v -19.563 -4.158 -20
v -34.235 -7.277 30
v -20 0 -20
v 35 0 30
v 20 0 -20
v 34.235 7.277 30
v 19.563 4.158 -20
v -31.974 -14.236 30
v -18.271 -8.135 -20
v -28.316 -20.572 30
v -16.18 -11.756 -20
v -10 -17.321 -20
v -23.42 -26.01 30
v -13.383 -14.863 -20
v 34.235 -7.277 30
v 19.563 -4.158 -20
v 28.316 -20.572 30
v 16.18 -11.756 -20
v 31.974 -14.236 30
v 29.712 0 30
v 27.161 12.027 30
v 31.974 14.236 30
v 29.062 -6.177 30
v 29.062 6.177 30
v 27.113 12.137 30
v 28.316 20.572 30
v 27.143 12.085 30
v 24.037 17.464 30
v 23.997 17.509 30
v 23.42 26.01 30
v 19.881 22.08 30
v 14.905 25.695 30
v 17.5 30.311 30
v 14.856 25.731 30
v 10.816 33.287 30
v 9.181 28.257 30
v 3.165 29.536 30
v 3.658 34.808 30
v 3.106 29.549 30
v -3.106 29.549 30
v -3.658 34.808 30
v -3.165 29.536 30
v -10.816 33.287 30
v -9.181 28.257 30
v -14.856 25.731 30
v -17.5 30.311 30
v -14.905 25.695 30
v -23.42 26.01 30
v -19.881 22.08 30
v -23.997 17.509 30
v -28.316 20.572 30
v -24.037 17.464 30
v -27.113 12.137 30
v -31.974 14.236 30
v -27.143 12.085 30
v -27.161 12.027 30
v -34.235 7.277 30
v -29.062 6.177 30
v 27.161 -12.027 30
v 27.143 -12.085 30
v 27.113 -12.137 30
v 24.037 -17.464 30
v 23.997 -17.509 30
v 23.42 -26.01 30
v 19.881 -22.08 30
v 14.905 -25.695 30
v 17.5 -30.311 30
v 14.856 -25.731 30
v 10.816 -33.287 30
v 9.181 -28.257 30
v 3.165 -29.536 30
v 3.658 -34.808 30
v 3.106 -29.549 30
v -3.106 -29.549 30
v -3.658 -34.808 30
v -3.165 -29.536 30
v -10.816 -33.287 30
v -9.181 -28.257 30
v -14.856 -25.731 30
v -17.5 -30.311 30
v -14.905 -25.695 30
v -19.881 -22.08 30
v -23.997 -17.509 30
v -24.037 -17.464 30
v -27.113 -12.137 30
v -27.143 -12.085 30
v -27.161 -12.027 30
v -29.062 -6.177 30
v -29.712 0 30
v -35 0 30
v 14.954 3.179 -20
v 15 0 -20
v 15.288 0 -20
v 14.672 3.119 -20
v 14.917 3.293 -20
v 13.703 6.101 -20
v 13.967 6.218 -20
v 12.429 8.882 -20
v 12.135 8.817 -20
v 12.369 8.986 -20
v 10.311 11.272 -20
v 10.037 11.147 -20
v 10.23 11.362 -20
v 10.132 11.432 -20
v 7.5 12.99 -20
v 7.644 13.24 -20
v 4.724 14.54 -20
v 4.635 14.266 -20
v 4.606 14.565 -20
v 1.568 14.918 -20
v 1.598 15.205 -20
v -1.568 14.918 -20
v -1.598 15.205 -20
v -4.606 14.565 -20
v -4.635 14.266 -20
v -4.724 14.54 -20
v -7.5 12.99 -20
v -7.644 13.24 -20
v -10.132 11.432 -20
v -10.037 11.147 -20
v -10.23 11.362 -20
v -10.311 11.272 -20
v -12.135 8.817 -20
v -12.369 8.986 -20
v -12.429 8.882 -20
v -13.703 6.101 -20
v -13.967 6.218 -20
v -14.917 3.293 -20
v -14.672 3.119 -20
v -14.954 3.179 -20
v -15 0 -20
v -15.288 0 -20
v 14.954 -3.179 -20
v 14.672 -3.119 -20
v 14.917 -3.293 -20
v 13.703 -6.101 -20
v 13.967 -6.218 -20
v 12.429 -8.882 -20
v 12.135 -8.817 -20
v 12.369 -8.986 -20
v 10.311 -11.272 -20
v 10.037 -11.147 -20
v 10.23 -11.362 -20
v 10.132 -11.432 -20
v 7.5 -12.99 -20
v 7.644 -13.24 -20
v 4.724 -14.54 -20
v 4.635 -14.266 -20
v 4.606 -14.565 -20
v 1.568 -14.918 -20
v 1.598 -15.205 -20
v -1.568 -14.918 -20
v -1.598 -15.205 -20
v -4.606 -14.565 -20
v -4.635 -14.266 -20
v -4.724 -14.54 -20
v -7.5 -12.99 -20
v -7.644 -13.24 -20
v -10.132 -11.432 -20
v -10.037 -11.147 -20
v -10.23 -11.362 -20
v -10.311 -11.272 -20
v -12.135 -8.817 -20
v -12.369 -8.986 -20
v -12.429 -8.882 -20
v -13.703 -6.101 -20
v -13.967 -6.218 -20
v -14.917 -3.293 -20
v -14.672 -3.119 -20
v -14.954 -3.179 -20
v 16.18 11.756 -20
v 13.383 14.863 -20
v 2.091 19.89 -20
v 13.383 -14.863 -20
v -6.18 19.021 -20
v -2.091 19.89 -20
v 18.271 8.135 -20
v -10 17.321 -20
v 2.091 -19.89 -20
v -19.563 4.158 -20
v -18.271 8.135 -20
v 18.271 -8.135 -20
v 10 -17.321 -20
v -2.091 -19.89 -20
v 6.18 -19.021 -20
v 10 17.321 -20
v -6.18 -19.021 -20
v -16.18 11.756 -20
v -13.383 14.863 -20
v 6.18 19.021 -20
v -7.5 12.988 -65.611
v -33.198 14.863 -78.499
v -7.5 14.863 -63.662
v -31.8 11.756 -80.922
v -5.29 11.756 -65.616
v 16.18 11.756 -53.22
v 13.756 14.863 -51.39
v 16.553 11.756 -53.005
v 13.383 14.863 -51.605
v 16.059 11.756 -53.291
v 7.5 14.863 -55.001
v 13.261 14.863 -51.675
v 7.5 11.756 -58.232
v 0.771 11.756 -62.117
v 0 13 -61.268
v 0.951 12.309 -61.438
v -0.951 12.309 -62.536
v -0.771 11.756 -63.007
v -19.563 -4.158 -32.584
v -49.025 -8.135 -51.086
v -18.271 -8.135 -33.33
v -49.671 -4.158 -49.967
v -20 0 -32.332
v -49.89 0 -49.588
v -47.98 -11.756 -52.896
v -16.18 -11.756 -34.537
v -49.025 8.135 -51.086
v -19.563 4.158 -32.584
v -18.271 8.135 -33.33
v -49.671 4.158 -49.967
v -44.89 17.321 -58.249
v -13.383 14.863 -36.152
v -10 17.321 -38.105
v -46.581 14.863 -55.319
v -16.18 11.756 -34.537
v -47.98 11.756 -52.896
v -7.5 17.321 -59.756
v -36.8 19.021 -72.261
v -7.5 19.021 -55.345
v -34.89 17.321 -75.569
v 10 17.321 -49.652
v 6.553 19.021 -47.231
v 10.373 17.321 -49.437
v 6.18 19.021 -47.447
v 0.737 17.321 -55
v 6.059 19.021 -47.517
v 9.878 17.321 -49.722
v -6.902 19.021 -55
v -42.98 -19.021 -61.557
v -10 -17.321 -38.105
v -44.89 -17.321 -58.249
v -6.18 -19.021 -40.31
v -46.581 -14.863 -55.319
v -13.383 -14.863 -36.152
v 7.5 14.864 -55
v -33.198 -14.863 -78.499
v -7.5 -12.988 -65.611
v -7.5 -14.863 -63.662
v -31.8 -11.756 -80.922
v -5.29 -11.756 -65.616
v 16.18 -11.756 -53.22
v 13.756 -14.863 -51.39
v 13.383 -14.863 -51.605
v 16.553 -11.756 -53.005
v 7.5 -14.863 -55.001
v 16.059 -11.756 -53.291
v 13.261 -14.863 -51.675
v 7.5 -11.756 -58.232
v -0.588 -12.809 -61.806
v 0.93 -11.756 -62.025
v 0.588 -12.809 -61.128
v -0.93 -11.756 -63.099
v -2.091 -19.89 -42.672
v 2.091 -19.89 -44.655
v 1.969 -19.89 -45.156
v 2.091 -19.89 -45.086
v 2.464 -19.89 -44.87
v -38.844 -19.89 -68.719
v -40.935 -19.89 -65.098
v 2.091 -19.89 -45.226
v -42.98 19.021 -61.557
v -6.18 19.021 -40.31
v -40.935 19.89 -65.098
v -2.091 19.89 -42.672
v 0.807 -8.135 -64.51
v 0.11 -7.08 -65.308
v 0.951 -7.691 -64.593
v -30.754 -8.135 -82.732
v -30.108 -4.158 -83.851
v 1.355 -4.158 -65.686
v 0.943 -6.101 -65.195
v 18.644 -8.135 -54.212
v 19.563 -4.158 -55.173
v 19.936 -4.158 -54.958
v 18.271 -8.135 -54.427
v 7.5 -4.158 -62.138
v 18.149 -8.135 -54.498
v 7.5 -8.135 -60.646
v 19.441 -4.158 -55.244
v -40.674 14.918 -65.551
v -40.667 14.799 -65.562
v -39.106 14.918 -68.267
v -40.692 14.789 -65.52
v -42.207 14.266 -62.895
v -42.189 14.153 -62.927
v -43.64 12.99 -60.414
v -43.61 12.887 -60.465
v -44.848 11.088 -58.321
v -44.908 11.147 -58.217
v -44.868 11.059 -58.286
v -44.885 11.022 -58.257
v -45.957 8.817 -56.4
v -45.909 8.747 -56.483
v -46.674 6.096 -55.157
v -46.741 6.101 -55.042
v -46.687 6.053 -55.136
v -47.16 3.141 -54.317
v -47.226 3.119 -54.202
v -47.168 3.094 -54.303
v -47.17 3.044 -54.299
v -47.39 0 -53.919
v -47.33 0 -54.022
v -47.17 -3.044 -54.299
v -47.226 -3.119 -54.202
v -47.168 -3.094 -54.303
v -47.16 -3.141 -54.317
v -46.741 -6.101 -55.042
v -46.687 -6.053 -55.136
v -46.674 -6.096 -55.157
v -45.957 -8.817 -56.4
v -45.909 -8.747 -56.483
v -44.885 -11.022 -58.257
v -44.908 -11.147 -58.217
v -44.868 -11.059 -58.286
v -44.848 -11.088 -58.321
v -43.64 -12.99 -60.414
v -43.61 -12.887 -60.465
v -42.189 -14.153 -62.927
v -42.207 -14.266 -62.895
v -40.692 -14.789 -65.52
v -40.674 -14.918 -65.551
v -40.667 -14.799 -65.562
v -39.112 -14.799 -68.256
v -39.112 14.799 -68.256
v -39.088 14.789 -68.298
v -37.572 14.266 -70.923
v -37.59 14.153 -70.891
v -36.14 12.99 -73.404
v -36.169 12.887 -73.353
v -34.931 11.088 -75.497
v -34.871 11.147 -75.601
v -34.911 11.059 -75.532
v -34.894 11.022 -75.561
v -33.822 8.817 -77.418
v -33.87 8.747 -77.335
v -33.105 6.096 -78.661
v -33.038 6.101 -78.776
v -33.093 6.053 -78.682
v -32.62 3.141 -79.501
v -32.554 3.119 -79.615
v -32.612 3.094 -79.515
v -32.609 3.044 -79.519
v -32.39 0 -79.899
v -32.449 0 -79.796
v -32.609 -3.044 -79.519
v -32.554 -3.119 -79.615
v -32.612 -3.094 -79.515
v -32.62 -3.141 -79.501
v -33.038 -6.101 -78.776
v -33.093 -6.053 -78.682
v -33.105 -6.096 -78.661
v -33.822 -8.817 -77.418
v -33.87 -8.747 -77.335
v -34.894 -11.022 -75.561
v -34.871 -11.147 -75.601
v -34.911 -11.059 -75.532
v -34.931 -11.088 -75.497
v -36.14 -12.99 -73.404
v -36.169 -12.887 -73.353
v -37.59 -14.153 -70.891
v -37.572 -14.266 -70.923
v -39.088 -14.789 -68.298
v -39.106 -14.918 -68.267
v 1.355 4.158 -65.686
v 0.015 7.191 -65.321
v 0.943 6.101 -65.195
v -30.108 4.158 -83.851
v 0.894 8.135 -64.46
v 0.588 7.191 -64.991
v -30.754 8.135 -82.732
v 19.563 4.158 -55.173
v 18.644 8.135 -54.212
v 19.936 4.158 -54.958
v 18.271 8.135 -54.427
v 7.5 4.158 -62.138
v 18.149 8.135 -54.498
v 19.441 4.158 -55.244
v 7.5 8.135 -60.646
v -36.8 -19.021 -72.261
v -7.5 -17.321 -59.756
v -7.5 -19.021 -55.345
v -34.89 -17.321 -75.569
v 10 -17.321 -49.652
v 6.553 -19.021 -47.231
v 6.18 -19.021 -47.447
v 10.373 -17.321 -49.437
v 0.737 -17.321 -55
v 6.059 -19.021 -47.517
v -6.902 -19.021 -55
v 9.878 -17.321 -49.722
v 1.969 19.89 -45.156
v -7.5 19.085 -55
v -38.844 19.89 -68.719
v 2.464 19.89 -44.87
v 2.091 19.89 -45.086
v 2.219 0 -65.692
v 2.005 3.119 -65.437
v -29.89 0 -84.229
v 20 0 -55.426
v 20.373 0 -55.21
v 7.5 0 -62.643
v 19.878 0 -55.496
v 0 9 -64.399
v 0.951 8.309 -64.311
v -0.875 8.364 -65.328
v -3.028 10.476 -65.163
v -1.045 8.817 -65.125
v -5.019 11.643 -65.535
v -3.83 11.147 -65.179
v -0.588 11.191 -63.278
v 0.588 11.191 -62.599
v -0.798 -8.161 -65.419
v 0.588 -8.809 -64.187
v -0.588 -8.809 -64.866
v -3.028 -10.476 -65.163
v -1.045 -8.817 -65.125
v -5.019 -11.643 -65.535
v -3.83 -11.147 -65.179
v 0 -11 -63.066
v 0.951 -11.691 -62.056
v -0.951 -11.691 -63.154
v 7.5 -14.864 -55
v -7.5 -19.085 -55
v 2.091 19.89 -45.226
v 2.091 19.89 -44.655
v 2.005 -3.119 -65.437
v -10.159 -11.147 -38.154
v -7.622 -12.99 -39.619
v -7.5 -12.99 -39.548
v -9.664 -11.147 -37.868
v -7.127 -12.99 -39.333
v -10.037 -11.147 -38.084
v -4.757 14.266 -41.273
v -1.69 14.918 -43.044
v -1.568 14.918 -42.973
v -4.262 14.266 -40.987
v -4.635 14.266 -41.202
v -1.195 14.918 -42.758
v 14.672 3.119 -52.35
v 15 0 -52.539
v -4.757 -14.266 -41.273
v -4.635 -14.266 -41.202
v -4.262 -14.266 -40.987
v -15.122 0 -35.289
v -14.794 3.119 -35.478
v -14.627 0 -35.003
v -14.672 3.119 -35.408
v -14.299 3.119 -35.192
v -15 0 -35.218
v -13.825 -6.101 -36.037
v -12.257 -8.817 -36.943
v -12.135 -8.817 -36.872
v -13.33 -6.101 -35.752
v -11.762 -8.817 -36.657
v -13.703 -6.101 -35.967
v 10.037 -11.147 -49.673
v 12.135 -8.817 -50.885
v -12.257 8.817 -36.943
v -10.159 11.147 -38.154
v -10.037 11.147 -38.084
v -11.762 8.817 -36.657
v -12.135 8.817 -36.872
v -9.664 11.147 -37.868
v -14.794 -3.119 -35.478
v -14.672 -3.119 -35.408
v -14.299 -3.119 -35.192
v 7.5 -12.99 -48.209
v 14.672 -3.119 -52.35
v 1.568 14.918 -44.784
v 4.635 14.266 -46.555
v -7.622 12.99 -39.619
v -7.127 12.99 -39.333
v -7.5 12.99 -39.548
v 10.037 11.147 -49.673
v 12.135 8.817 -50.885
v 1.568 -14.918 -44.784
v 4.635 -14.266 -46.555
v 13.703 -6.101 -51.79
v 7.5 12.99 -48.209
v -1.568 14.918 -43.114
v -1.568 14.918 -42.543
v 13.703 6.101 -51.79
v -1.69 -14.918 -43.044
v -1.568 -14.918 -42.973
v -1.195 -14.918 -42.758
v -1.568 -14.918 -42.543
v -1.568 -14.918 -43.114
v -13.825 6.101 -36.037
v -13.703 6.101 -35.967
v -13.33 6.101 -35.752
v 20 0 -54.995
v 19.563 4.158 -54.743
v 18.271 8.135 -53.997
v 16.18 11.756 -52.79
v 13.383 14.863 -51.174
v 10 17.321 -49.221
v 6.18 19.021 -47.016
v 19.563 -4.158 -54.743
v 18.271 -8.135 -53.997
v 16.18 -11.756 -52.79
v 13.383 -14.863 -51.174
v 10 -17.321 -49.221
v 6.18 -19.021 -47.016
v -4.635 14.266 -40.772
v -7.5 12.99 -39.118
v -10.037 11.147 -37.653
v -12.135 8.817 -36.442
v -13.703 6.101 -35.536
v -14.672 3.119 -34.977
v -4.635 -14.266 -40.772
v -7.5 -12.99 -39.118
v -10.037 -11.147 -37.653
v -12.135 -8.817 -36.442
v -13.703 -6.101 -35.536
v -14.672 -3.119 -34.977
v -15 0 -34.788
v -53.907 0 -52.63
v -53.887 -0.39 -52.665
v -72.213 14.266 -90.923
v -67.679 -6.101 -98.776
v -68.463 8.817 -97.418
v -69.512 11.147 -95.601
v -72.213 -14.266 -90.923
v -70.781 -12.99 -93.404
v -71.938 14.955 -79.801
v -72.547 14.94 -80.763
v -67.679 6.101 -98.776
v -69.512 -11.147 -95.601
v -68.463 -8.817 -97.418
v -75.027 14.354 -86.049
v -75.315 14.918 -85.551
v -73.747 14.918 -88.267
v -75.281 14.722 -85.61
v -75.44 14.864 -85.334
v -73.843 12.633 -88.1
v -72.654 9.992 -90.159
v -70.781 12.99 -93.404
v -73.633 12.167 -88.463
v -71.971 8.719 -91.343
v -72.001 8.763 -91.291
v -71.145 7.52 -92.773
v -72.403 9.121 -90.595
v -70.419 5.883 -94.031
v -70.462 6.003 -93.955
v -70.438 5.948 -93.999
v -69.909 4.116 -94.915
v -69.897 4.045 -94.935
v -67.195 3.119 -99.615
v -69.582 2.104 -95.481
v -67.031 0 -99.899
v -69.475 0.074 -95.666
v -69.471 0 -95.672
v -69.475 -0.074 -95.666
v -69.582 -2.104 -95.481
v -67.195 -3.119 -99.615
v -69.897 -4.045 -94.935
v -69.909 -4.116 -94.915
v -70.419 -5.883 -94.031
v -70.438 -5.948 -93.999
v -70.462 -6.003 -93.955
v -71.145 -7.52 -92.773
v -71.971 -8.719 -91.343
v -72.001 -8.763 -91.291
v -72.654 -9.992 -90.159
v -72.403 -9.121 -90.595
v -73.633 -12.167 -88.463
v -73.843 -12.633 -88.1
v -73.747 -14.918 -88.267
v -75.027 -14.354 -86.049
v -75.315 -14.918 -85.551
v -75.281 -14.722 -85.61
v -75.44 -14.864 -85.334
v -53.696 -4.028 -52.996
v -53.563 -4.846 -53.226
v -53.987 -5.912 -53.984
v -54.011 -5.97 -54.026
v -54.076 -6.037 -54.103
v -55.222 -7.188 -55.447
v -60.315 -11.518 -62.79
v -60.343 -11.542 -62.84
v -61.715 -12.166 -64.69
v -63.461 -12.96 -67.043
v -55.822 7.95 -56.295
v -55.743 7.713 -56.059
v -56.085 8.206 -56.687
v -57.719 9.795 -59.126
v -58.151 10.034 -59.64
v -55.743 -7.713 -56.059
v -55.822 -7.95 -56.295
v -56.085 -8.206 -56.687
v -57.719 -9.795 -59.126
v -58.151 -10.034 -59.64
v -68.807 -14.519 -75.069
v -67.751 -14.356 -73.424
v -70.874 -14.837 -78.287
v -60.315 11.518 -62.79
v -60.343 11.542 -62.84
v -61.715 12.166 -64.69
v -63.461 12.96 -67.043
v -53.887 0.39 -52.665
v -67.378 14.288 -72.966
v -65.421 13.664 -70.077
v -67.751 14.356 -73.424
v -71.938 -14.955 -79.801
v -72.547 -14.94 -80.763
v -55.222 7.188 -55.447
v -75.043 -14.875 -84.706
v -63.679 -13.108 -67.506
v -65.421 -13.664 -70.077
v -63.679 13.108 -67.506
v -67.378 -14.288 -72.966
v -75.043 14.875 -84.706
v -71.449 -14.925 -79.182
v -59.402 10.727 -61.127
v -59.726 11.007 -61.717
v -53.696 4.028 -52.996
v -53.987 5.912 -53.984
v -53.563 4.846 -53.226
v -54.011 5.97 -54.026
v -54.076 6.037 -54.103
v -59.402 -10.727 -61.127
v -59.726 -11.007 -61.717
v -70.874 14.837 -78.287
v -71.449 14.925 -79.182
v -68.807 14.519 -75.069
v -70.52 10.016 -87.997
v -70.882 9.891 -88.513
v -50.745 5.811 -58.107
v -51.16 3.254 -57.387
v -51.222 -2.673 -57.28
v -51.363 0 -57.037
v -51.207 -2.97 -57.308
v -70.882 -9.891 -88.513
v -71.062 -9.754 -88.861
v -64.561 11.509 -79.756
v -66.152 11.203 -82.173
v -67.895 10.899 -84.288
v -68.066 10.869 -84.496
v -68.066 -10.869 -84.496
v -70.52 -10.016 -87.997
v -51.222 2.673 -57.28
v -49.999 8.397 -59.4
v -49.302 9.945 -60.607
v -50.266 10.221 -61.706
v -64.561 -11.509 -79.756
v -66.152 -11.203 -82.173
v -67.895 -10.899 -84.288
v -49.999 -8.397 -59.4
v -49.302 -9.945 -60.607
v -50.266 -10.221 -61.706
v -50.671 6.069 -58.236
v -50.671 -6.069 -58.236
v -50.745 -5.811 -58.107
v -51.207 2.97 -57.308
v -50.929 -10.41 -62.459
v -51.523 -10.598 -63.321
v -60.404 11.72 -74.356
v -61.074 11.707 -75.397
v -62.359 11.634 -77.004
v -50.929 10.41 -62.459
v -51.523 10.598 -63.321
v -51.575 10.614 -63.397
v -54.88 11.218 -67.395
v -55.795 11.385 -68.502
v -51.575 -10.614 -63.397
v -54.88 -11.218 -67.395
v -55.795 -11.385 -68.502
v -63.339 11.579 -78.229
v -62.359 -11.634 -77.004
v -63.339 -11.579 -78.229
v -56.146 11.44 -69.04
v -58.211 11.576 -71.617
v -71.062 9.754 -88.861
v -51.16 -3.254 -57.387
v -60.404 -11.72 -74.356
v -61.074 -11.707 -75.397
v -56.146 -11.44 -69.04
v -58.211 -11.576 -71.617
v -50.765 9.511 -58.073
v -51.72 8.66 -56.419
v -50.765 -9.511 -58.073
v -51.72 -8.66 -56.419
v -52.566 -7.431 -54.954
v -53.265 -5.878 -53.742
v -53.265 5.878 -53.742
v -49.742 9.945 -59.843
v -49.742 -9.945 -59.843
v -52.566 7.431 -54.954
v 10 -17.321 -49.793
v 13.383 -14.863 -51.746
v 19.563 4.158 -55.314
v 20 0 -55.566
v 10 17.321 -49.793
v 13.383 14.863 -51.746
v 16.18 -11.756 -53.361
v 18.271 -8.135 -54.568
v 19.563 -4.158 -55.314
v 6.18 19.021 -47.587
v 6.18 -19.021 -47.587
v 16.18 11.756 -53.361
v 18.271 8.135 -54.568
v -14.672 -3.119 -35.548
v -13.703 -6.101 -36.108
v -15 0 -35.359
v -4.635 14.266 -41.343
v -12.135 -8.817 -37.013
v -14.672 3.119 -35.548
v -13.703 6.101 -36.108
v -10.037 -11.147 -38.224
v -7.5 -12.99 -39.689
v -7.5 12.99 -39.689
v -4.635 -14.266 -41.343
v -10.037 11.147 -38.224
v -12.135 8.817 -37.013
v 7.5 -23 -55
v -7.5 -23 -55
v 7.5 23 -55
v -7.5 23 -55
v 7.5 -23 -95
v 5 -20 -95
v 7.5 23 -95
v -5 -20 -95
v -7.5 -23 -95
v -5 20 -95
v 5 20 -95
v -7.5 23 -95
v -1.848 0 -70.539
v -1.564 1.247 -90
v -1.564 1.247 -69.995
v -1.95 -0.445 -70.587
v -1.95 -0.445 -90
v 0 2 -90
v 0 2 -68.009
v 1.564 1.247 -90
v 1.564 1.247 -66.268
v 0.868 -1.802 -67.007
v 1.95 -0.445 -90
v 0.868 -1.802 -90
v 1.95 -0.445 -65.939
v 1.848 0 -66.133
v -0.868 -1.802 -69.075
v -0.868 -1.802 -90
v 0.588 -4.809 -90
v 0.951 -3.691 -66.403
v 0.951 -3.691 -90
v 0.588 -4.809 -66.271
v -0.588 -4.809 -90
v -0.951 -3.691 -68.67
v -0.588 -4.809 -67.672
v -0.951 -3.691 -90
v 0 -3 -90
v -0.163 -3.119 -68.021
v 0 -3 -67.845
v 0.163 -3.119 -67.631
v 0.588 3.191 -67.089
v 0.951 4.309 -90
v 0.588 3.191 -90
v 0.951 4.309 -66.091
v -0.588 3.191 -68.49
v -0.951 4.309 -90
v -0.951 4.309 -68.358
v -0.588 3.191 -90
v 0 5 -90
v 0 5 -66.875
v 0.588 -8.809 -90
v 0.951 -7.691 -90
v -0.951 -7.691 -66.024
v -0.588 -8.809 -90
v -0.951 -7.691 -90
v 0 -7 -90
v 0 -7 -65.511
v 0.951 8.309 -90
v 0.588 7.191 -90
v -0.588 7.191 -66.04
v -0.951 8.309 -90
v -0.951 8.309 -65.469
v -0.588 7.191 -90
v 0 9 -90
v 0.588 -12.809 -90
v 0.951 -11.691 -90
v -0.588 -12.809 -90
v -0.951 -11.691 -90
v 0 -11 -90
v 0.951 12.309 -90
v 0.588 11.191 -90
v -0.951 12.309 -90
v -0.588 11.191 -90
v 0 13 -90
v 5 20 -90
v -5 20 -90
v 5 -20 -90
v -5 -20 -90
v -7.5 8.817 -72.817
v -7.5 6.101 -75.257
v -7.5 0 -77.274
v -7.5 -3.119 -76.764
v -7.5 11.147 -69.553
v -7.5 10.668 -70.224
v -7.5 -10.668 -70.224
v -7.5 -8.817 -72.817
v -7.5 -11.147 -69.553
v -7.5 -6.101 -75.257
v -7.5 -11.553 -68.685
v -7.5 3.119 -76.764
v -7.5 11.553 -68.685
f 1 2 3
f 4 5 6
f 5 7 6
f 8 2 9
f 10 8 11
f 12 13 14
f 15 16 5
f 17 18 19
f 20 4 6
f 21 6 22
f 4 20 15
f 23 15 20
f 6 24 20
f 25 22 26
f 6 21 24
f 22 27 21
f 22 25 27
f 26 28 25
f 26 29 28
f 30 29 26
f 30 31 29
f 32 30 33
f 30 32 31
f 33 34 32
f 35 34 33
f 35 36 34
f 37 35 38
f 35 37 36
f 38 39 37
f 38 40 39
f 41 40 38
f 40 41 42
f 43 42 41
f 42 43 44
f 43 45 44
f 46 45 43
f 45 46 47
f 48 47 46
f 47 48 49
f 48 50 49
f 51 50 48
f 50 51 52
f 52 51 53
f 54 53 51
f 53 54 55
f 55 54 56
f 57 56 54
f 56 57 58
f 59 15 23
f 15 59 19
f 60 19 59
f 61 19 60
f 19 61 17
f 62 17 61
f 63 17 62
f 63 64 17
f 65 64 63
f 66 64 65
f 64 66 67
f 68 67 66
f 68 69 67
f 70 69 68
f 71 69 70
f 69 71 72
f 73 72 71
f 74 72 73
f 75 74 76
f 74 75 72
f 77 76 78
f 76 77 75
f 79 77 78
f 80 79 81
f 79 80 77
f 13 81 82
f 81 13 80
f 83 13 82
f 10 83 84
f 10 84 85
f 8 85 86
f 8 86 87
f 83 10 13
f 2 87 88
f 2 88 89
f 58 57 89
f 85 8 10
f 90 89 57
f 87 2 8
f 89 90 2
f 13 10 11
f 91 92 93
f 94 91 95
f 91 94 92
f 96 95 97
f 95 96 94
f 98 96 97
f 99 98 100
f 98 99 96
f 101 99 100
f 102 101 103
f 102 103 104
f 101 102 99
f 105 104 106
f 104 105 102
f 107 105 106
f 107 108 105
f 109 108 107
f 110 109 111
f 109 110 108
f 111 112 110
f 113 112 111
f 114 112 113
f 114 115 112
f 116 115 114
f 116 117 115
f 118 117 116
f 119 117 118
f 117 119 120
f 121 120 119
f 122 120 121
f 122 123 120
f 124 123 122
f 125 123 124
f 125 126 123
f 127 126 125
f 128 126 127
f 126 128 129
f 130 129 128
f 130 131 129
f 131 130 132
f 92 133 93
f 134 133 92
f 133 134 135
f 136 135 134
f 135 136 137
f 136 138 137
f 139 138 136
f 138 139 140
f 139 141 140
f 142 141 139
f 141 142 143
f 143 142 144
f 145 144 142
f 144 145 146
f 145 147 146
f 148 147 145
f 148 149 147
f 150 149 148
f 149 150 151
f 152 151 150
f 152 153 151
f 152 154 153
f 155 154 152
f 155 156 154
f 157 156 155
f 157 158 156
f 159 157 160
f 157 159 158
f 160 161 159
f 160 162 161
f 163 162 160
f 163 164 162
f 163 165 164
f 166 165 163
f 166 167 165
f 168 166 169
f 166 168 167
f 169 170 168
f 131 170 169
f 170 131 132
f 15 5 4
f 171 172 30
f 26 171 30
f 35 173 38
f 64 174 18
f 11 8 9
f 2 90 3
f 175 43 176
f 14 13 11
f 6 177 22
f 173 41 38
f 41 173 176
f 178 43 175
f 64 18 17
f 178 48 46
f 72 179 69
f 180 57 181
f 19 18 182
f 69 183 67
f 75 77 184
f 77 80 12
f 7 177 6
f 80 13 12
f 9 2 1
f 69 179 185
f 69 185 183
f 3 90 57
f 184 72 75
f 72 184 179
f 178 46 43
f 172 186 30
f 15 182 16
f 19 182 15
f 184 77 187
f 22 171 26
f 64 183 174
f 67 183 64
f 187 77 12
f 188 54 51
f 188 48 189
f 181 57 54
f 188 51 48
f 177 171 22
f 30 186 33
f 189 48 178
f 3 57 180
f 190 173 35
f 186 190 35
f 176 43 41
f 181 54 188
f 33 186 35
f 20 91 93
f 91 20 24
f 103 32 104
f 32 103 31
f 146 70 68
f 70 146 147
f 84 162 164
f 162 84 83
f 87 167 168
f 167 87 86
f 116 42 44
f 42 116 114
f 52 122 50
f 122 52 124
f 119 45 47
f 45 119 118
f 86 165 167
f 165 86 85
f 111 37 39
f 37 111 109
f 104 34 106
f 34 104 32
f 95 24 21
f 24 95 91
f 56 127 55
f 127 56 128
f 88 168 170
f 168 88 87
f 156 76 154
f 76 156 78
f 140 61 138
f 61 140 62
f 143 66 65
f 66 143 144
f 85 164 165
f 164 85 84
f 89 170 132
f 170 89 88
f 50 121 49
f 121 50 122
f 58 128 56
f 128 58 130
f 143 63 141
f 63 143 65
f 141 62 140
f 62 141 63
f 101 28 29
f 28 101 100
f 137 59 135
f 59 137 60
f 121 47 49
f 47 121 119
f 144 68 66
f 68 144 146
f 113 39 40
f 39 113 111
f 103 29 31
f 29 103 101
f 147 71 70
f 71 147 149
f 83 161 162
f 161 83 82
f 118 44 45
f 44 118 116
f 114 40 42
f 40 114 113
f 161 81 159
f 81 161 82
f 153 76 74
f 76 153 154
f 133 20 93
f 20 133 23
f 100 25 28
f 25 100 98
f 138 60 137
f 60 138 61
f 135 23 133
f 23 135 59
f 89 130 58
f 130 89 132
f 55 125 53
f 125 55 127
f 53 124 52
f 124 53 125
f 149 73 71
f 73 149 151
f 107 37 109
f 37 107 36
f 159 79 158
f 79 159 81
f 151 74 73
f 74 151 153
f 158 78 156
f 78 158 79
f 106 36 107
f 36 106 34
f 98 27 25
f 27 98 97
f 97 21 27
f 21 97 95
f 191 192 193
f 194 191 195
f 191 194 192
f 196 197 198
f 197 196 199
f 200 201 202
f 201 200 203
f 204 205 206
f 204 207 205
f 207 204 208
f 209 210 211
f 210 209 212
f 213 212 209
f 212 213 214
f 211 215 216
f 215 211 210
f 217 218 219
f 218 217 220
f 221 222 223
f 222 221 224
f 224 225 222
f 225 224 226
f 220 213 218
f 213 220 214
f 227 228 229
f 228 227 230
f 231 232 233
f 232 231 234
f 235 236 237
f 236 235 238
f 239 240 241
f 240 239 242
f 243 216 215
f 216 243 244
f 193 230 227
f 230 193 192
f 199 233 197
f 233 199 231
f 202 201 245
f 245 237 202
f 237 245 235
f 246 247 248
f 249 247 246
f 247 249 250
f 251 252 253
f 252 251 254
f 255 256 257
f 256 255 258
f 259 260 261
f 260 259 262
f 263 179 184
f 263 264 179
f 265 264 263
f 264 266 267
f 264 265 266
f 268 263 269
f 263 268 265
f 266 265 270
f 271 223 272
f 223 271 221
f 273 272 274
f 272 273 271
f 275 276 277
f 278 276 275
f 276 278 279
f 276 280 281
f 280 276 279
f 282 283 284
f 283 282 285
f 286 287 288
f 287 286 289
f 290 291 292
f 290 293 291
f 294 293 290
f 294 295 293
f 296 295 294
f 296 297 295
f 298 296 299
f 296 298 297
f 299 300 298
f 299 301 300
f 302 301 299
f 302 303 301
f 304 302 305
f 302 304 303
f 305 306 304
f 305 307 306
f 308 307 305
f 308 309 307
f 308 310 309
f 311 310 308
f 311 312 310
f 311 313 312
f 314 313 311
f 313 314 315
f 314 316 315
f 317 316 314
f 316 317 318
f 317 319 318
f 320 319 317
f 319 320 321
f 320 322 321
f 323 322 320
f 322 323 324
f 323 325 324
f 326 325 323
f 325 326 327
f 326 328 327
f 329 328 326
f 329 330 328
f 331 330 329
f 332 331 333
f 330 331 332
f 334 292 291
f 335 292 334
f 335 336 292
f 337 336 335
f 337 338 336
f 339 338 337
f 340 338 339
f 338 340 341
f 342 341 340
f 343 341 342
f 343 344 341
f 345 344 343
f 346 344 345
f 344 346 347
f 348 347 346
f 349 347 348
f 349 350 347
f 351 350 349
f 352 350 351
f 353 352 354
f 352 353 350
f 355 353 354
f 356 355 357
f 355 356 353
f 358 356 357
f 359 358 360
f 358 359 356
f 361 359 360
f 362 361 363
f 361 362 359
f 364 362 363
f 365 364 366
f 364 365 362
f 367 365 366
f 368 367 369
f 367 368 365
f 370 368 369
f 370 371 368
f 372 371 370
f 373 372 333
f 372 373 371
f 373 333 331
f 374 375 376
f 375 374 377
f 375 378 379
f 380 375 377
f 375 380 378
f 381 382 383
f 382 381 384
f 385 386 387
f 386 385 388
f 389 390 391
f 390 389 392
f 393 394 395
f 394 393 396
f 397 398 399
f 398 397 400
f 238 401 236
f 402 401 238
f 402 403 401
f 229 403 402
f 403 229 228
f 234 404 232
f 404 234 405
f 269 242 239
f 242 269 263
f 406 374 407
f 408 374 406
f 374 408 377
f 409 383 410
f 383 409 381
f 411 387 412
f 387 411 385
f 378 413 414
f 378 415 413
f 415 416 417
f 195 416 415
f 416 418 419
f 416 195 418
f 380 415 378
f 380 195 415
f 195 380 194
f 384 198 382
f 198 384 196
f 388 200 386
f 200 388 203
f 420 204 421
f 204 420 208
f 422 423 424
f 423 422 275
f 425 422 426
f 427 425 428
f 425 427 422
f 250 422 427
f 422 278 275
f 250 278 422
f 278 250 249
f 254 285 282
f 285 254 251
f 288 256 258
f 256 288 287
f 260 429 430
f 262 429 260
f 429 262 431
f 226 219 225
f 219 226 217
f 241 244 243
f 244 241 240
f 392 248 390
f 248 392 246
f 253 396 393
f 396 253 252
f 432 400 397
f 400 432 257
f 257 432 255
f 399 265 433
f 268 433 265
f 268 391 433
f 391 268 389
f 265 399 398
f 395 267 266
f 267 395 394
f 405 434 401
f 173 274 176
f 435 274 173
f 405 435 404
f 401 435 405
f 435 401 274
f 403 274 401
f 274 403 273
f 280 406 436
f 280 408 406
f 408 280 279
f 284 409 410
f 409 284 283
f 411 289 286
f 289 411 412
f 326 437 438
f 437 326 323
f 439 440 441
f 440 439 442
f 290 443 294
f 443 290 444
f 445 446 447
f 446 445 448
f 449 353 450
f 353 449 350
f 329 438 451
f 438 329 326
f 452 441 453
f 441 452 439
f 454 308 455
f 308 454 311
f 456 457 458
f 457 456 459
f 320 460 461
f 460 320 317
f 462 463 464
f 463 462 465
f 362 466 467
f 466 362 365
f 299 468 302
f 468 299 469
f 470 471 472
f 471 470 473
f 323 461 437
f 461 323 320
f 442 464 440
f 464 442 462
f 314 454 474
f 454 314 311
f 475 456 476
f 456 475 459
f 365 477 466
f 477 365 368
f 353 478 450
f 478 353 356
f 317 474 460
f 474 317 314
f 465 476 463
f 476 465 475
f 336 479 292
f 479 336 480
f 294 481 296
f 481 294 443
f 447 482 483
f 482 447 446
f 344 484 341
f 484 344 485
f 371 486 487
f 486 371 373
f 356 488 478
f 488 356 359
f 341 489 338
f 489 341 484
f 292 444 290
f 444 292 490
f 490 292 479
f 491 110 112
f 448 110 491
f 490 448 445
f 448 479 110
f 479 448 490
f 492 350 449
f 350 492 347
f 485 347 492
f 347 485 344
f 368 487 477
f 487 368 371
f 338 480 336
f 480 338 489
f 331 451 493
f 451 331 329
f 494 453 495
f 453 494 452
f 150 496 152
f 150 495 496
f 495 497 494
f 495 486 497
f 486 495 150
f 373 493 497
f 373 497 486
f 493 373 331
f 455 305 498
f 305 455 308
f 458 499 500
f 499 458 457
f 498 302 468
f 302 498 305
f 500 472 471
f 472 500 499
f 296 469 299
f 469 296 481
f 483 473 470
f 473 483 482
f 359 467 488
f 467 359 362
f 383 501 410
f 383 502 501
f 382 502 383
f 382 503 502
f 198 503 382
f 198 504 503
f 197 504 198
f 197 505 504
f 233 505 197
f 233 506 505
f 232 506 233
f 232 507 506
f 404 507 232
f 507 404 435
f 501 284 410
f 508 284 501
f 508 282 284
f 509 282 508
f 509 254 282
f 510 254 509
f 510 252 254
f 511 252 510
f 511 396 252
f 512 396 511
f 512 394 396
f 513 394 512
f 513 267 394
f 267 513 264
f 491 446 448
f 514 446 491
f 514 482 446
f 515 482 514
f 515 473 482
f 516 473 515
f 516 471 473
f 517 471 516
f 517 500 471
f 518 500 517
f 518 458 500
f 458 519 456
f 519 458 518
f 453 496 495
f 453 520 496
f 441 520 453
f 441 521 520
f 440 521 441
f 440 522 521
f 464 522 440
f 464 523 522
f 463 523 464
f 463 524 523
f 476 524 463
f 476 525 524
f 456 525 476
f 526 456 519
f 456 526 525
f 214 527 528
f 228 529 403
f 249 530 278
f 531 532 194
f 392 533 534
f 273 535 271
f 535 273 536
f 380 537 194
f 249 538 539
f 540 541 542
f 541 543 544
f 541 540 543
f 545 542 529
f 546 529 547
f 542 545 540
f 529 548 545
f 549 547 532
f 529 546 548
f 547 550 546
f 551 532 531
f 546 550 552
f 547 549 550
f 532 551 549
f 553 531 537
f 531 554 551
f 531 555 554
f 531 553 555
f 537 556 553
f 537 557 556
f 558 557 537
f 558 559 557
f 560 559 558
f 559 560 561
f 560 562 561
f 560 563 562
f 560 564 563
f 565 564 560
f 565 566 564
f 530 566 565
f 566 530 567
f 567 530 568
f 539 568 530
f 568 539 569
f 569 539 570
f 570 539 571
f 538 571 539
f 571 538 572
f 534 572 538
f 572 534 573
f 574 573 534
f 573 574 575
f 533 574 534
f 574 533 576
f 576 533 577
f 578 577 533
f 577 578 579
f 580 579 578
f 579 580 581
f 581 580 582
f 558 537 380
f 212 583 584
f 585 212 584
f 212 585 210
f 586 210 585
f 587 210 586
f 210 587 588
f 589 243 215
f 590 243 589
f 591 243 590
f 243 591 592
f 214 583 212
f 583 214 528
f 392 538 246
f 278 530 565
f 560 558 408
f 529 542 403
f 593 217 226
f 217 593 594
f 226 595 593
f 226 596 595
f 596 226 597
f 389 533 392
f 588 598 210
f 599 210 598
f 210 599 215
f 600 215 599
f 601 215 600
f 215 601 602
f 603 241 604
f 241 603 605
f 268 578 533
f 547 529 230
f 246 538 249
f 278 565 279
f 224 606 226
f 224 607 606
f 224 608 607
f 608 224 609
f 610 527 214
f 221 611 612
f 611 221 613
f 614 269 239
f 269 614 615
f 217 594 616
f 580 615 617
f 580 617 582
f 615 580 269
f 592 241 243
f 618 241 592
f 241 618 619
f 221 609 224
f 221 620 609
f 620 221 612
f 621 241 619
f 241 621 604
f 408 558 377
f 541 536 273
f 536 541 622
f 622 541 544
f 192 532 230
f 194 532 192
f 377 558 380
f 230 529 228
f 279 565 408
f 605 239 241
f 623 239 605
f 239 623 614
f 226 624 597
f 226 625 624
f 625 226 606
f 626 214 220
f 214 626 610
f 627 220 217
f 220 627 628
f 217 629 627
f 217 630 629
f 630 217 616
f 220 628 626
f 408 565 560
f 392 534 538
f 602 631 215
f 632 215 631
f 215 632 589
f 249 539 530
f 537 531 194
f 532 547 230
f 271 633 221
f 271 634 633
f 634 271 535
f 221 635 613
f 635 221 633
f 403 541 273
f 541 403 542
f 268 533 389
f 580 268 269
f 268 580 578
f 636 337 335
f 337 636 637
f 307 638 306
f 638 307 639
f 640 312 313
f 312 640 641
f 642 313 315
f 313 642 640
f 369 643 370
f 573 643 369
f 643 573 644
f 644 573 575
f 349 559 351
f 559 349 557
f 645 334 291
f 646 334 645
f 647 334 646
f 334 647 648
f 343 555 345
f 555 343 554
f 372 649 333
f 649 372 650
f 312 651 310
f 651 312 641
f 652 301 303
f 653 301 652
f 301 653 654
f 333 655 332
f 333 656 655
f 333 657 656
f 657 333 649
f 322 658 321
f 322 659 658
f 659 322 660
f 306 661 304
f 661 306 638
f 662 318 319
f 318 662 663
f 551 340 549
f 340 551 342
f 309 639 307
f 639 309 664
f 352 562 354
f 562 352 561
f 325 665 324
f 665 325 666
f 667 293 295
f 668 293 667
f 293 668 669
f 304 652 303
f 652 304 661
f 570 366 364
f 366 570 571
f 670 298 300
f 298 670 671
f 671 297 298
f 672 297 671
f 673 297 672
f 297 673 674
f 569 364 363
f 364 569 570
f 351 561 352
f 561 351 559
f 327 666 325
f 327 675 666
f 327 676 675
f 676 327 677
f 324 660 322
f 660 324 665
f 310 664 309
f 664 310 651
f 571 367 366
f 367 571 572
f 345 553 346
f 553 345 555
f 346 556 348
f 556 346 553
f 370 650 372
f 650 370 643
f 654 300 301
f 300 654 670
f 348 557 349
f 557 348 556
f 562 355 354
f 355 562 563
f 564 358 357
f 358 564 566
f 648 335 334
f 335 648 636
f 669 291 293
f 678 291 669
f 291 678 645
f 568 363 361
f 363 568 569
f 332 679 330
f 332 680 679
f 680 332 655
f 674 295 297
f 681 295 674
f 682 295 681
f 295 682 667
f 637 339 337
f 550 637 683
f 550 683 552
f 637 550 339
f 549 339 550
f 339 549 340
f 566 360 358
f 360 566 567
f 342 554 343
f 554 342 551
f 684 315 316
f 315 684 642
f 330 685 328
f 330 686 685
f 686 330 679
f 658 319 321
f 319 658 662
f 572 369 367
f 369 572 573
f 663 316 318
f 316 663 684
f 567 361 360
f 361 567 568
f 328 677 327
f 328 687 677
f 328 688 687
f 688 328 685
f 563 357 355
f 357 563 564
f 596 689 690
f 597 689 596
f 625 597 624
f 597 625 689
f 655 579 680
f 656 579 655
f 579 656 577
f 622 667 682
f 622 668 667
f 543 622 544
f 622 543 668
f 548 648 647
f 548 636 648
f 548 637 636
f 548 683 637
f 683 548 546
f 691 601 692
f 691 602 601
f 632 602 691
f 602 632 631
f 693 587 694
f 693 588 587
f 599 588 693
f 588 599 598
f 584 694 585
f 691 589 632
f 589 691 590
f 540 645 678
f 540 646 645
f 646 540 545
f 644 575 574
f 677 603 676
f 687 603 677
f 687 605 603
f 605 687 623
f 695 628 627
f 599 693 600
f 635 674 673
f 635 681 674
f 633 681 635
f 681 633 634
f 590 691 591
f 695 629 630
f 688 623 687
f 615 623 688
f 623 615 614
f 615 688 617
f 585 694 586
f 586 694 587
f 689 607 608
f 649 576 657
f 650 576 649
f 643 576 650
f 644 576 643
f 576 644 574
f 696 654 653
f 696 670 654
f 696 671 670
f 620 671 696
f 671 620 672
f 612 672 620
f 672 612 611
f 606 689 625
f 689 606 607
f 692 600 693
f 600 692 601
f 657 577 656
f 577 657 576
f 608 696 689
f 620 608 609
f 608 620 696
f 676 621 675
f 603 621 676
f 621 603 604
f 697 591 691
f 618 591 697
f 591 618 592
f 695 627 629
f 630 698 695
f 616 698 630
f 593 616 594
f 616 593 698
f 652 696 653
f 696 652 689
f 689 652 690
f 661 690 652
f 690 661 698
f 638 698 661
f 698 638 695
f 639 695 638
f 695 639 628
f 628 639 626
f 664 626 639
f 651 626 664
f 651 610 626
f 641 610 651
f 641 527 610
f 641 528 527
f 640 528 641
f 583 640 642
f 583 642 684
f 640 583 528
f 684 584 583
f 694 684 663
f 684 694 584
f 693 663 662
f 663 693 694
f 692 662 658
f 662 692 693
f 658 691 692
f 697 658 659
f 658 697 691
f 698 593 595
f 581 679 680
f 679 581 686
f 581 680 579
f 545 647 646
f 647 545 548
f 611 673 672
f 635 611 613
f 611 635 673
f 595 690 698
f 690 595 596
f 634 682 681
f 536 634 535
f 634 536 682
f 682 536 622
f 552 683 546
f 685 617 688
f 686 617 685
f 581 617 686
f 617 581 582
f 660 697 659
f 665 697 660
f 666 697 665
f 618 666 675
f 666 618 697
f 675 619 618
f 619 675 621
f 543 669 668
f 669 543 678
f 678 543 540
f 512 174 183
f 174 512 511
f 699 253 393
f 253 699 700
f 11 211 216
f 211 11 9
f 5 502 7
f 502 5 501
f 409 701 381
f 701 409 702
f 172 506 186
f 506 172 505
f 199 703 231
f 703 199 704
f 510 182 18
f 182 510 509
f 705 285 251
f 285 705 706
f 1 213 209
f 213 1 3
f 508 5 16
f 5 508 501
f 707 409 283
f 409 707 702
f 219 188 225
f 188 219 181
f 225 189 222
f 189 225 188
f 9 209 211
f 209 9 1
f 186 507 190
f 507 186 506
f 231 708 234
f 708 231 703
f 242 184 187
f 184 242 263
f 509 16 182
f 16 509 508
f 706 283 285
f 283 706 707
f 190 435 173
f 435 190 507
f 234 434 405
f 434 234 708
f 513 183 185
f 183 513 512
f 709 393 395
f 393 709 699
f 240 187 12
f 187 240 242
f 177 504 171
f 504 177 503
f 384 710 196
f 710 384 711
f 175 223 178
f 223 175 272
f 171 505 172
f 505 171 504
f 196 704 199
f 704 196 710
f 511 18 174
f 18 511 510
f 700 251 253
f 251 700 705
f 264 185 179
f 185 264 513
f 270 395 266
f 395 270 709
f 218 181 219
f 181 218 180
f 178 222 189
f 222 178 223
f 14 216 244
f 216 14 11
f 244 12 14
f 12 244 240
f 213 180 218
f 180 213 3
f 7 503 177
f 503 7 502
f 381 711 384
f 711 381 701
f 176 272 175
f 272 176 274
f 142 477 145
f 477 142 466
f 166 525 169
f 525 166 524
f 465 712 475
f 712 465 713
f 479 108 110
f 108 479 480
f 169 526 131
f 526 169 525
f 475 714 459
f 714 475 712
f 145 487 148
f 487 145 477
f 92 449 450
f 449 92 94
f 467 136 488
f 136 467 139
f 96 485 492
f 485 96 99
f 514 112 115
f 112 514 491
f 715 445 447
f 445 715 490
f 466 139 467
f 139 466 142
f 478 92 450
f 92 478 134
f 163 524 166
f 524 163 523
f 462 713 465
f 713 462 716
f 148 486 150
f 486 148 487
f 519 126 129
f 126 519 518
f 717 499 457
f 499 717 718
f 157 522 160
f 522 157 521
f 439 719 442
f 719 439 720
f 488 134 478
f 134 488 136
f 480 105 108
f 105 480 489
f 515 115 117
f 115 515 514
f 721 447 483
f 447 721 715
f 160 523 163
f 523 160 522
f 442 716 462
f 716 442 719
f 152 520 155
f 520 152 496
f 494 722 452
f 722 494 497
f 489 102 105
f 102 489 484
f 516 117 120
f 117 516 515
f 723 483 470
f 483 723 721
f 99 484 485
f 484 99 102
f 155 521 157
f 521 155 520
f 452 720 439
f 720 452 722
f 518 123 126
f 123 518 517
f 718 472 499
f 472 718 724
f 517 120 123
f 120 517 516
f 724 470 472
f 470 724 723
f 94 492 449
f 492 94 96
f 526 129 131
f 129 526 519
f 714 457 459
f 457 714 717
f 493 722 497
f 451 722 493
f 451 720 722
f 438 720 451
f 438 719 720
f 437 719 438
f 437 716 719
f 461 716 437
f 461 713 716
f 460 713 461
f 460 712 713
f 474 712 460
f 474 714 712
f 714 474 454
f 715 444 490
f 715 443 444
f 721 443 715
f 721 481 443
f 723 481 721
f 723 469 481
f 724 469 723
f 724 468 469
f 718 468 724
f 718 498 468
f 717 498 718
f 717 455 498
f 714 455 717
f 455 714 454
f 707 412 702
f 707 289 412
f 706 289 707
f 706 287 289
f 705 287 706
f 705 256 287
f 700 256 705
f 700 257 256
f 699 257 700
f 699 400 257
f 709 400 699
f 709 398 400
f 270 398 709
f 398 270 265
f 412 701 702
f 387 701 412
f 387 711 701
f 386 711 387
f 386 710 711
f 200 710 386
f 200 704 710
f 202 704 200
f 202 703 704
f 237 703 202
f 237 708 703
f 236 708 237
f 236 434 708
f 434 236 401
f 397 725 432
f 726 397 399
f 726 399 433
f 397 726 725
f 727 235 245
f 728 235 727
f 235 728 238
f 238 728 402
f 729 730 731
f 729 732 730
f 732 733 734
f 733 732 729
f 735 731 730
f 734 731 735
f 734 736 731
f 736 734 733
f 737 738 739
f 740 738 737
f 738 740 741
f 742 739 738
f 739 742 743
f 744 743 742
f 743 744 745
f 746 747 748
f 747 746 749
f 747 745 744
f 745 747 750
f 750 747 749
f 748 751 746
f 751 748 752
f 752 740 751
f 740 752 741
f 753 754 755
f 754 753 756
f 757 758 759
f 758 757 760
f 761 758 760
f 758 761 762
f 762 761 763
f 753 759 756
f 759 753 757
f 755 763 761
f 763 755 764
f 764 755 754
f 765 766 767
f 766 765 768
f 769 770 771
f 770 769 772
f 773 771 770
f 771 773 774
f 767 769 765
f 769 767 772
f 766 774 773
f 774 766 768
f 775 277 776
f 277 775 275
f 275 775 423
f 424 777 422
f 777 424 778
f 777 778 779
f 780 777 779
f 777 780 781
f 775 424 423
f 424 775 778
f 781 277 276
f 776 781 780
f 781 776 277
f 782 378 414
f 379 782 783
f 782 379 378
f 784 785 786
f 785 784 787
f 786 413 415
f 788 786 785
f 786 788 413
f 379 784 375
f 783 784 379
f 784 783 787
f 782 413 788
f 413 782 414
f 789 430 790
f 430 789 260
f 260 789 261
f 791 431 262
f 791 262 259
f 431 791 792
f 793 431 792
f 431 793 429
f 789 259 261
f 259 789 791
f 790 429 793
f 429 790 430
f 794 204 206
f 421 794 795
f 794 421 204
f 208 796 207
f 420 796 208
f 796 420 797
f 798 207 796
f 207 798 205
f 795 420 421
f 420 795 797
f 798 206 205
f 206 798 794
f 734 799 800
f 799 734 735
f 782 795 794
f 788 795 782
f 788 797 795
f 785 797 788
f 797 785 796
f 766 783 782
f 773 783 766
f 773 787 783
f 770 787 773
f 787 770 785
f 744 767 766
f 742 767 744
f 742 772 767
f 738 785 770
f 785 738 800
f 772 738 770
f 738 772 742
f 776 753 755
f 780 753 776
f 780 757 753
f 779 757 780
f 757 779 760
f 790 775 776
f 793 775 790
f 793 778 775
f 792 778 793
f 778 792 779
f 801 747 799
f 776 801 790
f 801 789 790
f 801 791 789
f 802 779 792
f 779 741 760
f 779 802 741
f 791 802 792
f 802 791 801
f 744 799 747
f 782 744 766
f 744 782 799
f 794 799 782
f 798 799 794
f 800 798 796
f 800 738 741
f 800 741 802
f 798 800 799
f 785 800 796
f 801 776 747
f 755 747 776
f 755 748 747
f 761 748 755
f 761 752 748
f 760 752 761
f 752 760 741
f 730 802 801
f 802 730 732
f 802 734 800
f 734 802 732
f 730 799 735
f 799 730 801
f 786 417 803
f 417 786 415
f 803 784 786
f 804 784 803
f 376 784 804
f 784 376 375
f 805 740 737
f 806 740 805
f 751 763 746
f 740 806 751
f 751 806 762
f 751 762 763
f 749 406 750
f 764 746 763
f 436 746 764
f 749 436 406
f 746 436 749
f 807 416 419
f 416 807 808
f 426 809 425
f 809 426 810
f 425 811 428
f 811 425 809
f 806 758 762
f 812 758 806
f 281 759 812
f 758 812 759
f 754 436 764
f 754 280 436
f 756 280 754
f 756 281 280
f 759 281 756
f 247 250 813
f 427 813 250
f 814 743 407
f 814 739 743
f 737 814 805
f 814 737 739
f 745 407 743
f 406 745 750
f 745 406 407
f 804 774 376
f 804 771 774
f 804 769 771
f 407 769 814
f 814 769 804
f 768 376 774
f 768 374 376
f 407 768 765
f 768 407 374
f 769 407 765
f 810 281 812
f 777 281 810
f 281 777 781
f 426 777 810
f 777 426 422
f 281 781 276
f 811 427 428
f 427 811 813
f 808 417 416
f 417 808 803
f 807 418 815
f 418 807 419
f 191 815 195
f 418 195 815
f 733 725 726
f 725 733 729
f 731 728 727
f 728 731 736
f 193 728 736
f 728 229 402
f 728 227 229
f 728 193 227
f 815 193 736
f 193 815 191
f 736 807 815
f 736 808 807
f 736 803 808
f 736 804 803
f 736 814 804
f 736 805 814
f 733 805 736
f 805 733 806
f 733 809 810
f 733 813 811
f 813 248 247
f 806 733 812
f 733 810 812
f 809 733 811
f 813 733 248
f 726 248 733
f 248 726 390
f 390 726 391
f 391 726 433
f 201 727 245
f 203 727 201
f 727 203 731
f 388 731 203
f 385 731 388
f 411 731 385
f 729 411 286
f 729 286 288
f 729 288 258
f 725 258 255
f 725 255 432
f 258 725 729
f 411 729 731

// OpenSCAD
// TOP CONE
translate([0, 0, 5])
difference() {
    cylinder(h = 50, r1 = 20, r2 = 35, center = true);
    cylinder(h = 52, r1 = 15, r2 = 30, center = true);
}

// ANGLED PIPE
rotate([180, 240, 0])
translate([-38, 0, 42])
difference() {
    translate([0, 0, -70])
        cylinder(h = 80, r1 = 20, r2 = 20, center = true);
    translate([0, 0, -70])
        cylinder(h = 82, r1 = 15, r2 = 15, center = true);
    cylinder(h = 52, r1 = 15, r2 = 35, center = true);
    rotate([0, -60, 0])
    translate([-5, 0, -40])
        cube([100, 100, 100], center = true);
}

// ANGLED PIPE EXTENSION
rotate([180, 240, 0])
translate([-38, 0, -18])
difference() {
    translate([0, 0, -70])
        cylinder(h = 40, r1 = 15, r2 = 20, center = true);
    translate([0, 0, -70])
        cylinder(h = 42, r1 = 10, r2 = 15, center = true);
    cylinder(h = 52, r1 = 15, r2 = 35, center = true);
    translate([10, 0, -80])
        cylinder(h = 50, r=10, r1 = 20, center = true);
}


// DOWN PIPE
rotate([180,0,0])
translate([0, 0, 120])
difference() {
    translate([0, 0, -80])
        cylinder(40, 20, 20, center = true);
    translate([0, 0, -80])
        cylinder(42, 15, 15, center = true);
    translate([-15, 0, -50])
    rotate([0, 60, 0])
        cube(60, 60, 35, center = true);
}

// SERVO MOUNT
rotate([0, 0, 90])
translate([0, 0, -50])
difference() {
   translate([0, 0, -25])
       cube([60, 41, 40], center = true); 
   translate([0, 0, -25])
        cylinder(50, 2, 2, center = true);
   translate([-4, 0, -25])
        cylinder(50, 1, 1, center = true); 
   translate([4, 0, -25])
        cylinder(50, 1, 1, center = true);
   translate([-8, 0, -25])
        cylinder(50, 1, 1, center = true); 
   translate([8, 0, -25])
        cylinder(50, 1, 1, center = true);
   translate([-12, 0, -25])
        cylinder(50, 1, 1, center = true); 
   translate([12, 0, -25])
        cylinder(50, 1, 1, center = true);
   translate([0, 0, -45])
        cube([40, 10, 10], center = true);
 
    translate([0, 0, 5])
    rotate([180, 220, -90])
    cylinder(h = 82, r1 = 15, r2 = 15, center = true);
    
    // Base cutouts
    translate([-28, 0, -25])
        cube([10, 17, 50], center = true);
    
    translate([28, 0, -25])
        cube([10, 17, 50], center = true);
        
    translate([0, 15, -25])
        cube([66, 15, 50], center = true);

    translate([0, -15, -25])
        cube([66, 15, 50], center = true);
}
